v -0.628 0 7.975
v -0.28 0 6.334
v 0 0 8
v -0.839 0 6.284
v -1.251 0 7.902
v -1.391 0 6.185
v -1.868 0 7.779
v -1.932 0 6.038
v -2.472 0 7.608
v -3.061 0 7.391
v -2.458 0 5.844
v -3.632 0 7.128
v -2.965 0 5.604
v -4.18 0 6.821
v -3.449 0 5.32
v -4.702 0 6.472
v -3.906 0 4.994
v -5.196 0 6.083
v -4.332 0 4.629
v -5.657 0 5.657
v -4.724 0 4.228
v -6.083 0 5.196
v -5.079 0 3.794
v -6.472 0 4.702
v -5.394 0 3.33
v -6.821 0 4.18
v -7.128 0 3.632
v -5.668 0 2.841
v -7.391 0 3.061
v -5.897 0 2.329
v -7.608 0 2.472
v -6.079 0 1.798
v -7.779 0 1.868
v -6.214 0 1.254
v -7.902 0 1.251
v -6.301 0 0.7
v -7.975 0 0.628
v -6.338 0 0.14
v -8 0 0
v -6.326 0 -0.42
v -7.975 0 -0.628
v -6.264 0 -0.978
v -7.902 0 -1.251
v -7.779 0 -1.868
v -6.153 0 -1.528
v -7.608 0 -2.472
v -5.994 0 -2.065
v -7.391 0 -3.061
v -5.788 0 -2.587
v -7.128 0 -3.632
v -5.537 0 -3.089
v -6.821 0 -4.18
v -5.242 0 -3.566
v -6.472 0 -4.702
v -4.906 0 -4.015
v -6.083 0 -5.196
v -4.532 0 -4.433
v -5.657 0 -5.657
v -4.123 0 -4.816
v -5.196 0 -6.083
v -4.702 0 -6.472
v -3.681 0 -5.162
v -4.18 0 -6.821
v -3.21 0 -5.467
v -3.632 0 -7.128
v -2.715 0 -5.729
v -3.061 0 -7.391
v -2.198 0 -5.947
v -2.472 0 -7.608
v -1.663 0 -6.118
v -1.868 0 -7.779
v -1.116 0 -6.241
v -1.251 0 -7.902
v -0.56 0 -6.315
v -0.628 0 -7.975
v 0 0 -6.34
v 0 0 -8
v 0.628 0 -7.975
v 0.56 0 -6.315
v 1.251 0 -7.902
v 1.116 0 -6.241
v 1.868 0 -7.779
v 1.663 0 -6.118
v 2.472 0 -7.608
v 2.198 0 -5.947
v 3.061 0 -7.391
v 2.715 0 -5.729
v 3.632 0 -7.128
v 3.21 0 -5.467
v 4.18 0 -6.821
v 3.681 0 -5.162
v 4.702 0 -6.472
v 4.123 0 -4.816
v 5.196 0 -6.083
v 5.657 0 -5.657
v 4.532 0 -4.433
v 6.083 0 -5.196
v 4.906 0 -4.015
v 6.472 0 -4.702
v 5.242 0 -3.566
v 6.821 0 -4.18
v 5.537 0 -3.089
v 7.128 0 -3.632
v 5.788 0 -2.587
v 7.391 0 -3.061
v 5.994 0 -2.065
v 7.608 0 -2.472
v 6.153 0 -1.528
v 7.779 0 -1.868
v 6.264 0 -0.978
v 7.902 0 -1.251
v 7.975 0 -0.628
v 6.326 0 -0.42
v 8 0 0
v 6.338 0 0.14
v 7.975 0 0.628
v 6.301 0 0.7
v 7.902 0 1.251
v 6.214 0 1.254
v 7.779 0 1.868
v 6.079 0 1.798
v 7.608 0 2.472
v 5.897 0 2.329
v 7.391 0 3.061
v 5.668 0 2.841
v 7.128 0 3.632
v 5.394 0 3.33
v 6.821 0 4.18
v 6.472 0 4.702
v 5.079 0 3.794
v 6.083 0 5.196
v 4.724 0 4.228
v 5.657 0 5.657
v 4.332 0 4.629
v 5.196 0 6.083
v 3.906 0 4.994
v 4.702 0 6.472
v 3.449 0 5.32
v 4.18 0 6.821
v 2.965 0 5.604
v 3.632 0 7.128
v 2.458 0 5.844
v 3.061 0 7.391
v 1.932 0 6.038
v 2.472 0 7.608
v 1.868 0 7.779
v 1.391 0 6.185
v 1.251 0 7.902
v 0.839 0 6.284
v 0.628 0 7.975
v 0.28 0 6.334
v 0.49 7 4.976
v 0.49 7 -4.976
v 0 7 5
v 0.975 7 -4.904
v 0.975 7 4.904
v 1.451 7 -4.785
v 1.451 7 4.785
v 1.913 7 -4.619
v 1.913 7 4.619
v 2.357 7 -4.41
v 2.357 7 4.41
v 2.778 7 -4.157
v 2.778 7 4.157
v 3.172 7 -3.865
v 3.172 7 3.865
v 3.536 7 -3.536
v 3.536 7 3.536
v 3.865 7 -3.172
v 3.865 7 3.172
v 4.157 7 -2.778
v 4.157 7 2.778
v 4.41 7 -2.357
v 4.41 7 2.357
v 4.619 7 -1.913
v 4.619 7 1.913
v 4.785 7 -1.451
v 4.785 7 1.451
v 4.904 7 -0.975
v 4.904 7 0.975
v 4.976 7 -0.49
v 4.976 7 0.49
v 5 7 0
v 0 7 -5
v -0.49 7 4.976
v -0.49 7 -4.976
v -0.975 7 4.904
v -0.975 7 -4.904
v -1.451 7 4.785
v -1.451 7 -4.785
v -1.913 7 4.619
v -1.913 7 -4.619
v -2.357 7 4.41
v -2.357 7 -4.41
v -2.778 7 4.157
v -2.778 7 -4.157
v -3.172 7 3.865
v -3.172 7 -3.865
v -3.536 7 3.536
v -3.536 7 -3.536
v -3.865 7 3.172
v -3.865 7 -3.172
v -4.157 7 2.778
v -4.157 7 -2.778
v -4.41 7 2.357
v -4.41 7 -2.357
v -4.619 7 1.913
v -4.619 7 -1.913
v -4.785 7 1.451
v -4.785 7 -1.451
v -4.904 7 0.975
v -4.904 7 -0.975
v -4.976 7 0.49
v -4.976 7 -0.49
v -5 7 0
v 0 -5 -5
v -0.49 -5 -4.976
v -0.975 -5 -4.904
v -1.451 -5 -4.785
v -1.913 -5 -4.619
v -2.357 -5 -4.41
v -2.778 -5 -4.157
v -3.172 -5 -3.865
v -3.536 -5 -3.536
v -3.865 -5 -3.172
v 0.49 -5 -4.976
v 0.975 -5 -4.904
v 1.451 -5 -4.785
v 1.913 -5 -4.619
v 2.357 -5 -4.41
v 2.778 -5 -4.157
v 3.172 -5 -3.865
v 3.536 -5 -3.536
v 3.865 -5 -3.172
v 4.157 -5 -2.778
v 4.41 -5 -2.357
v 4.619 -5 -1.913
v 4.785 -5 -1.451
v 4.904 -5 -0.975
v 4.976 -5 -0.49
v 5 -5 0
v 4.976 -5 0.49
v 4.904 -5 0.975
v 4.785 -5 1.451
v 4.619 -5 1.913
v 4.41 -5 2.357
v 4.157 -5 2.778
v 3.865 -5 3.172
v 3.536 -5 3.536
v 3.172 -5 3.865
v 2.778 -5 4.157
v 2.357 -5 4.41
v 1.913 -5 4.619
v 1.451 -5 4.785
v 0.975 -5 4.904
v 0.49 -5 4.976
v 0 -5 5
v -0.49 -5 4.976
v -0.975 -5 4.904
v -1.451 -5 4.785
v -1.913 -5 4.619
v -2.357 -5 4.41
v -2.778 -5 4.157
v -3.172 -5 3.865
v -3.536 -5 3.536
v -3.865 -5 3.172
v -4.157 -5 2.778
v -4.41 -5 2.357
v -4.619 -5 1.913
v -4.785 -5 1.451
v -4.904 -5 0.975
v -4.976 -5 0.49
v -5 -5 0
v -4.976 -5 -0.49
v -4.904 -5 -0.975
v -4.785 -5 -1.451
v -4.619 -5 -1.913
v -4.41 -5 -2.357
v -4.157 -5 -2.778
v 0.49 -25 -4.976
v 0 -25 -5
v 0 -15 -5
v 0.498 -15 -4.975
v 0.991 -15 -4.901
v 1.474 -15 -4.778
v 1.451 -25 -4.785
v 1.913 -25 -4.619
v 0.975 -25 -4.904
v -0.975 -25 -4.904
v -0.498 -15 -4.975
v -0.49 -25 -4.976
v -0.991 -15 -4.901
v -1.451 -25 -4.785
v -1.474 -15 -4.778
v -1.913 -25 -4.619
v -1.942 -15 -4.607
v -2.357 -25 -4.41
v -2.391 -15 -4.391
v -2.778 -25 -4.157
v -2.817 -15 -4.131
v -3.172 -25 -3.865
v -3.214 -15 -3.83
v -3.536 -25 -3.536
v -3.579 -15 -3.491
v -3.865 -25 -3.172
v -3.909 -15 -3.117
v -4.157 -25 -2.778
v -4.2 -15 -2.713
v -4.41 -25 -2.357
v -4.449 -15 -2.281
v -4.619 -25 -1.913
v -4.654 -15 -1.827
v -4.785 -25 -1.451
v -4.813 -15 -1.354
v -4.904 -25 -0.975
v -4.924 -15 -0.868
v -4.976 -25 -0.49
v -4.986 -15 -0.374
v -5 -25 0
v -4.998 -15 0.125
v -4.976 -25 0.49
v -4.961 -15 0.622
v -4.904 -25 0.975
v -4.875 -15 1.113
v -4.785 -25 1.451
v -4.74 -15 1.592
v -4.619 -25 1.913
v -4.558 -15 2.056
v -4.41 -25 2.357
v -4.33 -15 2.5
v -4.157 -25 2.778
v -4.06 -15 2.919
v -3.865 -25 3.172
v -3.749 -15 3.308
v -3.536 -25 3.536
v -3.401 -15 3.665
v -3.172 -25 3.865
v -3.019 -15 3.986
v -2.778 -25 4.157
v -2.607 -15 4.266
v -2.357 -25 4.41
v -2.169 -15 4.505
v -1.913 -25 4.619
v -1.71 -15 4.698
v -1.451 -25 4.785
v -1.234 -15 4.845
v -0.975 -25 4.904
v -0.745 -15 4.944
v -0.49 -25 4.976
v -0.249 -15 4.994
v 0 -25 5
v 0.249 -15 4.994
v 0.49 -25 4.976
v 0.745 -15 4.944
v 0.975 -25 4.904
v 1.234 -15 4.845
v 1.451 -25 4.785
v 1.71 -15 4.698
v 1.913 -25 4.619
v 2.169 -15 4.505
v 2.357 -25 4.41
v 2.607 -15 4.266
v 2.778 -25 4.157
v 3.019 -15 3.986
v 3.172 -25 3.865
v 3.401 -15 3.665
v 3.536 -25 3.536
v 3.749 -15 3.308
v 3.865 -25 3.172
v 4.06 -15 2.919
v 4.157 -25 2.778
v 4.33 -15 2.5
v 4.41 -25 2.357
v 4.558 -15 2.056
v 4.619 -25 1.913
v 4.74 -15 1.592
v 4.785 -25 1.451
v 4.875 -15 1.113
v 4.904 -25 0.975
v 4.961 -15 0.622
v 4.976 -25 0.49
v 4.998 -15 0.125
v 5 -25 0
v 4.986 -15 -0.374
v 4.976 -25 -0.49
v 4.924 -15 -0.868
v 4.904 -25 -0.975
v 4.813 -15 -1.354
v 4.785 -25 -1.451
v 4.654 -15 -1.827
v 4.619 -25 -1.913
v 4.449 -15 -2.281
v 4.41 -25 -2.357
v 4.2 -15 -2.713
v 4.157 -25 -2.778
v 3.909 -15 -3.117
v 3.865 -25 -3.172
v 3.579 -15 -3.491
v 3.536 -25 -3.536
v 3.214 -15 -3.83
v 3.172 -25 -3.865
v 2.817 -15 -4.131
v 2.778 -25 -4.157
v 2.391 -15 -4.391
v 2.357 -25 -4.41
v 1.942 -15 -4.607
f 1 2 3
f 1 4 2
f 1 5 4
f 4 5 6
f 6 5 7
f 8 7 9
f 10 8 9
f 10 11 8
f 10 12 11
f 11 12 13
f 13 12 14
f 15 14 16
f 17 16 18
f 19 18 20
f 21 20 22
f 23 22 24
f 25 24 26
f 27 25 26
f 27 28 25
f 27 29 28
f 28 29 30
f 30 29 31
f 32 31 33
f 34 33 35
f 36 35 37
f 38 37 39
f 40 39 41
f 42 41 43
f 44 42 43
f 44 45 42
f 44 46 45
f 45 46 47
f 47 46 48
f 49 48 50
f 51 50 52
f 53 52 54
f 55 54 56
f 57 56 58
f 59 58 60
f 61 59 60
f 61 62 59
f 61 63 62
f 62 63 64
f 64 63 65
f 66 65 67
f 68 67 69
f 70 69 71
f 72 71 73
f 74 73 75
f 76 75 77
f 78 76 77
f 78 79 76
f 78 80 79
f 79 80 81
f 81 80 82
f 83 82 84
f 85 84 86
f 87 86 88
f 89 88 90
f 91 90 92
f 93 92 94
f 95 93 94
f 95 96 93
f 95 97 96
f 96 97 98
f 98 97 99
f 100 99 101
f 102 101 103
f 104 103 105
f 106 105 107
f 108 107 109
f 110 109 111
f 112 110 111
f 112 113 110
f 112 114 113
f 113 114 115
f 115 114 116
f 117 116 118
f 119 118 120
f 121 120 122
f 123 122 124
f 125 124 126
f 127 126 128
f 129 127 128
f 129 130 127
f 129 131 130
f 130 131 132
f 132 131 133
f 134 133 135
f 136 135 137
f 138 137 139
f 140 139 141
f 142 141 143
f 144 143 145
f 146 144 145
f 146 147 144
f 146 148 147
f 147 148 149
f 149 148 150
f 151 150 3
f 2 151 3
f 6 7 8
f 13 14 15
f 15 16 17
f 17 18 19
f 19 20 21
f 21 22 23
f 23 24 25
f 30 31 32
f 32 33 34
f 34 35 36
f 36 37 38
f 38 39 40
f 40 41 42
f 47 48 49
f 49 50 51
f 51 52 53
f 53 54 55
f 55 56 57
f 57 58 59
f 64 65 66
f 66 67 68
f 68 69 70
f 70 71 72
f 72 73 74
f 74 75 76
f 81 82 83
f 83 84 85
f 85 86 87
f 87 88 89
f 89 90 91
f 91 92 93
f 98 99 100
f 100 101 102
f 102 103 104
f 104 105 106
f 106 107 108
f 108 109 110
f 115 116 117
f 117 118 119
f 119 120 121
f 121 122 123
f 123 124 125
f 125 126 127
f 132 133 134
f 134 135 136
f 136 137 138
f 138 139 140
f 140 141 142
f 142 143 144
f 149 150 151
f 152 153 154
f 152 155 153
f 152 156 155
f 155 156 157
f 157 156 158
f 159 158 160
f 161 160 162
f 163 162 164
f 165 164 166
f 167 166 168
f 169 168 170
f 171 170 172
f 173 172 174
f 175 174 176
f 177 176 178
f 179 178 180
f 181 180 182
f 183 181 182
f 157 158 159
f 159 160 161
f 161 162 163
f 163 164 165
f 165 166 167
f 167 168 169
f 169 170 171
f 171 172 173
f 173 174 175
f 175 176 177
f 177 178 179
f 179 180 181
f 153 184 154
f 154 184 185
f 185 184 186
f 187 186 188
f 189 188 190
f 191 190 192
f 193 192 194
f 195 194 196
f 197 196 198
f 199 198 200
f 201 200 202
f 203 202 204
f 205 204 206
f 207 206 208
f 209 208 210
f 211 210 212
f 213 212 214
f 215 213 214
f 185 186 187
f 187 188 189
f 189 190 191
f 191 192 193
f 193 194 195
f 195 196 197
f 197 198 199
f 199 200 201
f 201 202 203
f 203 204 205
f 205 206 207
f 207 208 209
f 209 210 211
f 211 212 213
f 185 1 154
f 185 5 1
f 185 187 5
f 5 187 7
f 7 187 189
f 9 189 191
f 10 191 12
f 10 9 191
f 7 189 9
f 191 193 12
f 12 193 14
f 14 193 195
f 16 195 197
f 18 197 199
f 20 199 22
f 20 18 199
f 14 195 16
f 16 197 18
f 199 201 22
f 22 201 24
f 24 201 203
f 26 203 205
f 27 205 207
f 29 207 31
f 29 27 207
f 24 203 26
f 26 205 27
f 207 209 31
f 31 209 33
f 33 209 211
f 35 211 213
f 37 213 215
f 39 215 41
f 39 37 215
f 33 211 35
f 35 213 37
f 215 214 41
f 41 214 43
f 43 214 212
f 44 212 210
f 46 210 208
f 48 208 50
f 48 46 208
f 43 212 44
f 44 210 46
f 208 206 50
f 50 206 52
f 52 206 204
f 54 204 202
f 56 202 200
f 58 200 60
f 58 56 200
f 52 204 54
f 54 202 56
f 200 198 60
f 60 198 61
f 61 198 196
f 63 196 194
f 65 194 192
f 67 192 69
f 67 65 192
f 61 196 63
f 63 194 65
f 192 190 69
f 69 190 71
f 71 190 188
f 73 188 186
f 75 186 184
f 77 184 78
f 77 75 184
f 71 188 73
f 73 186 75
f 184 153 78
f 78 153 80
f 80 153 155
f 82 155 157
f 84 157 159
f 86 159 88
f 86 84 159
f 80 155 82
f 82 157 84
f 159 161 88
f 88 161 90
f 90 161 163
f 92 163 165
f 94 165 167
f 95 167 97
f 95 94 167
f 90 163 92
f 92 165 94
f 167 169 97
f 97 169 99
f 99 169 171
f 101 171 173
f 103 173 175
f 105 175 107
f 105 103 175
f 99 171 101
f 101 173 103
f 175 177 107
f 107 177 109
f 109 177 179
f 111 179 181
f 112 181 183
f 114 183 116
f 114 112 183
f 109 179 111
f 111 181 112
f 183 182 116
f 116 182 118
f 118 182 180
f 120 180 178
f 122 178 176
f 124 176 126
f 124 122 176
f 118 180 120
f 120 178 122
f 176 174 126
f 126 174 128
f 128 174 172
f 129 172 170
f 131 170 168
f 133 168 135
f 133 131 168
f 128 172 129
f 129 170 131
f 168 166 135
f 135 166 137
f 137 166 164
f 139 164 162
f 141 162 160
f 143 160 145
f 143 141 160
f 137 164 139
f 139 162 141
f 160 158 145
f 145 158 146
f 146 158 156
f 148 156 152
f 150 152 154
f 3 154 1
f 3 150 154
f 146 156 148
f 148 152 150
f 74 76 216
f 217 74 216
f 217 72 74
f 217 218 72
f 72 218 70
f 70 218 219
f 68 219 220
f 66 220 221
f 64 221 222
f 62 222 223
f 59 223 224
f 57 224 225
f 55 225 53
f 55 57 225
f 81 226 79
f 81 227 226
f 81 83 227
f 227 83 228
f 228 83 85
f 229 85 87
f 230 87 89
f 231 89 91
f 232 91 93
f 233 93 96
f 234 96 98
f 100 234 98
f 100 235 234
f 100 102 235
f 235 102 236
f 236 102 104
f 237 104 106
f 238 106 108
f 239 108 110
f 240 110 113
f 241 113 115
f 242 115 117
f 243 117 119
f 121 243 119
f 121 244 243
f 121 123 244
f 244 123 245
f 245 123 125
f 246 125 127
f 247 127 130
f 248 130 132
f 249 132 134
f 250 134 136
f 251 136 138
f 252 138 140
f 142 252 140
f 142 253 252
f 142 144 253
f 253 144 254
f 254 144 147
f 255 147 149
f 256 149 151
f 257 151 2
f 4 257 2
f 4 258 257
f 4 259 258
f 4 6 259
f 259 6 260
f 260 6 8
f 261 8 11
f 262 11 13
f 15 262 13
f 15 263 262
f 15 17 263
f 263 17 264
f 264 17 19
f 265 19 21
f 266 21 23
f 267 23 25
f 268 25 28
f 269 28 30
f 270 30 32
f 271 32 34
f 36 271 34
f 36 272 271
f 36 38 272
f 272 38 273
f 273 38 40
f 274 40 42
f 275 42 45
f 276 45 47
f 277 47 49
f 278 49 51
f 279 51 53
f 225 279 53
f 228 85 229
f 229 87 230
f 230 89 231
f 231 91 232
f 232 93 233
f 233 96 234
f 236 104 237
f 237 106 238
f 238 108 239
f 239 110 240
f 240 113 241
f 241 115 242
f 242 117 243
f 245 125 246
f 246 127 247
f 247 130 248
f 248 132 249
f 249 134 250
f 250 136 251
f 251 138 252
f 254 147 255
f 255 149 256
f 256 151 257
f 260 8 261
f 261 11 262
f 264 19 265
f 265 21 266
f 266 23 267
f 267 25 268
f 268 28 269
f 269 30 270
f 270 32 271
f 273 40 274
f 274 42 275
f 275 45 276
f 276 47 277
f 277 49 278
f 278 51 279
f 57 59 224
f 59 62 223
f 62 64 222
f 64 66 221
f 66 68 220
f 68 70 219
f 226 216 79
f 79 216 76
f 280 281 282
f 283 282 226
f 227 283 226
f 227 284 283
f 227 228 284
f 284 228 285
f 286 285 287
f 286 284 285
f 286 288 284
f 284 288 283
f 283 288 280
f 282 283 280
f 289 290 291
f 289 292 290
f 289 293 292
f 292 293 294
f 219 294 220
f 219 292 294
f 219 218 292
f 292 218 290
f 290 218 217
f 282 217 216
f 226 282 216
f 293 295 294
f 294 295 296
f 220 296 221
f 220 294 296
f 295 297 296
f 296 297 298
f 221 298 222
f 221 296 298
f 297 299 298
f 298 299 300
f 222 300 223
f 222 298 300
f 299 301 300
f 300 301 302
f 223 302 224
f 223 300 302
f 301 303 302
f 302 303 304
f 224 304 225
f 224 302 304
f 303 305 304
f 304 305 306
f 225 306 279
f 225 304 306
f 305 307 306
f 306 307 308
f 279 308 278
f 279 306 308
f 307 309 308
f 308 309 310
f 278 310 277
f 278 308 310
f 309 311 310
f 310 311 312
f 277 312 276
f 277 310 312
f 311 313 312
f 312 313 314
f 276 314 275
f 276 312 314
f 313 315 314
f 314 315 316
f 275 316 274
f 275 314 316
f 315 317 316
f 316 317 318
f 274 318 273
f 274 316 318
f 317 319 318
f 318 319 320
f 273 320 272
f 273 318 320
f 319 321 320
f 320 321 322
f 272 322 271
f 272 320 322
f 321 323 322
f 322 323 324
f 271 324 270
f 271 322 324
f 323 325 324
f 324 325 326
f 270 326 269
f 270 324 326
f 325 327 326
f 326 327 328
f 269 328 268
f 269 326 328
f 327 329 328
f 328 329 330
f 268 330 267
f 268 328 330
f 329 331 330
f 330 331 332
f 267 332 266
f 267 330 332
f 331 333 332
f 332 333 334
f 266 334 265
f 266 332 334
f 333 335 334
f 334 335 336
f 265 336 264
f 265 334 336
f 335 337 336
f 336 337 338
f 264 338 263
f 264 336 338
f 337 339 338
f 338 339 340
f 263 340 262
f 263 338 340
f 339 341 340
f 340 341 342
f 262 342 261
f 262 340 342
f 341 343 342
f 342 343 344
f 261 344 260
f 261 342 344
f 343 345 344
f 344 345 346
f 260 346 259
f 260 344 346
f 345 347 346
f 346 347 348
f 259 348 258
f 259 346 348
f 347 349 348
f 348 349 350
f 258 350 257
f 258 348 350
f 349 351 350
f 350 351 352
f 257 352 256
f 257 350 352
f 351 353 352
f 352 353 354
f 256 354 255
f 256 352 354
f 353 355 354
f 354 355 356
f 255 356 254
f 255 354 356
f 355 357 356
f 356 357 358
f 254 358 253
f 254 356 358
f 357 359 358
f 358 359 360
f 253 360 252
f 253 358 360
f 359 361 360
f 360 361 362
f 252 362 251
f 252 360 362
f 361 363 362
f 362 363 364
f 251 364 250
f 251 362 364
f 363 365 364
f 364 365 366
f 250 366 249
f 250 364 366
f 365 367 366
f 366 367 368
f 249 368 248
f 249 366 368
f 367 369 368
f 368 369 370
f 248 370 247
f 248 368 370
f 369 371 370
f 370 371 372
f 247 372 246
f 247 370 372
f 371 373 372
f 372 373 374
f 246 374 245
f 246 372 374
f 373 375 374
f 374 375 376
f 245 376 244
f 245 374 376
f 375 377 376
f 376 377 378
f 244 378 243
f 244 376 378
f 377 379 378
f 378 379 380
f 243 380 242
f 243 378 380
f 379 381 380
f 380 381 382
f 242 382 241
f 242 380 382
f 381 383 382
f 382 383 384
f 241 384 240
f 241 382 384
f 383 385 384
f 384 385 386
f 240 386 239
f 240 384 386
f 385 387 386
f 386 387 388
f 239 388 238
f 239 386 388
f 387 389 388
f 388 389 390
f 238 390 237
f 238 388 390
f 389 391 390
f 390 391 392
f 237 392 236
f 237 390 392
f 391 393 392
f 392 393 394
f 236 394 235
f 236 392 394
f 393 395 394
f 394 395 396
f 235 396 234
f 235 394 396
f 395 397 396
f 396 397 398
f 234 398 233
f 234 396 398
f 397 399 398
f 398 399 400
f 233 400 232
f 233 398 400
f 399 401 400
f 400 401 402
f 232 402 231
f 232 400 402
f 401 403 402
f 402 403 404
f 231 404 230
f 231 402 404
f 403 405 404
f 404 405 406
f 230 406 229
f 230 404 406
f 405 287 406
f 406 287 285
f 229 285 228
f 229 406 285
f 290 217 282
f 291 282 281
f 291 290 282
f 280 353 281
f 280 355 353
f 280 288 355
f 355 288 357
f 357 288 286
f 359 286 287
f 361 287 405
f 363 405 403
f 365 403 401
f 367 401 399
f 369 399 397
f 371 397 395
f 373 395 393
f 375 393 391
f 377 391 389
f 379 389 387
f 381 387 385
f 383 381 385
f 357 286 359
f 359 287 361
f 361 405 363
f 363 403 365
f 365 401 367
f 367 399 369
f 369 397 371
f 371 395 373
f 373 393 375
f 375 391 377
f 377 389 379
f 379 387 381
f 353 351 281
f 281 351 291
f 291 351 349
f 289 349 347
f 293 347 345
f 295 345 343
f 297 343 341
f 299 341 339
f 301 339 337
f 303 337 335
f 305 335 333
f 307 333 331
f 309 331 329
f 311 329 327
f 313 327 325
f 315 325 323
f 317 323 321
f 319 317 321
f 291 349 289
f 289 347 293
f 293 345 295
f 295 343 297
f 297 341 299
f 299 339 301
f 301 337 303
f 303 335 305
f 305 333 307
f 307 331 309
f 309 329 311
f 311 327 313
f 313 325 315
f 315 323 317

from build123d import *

# Parameters (mm, degrees)
SKETCH3_R           = 5
SKETCH1_R           = 8
SKETCH4_R           = 5
BOSS_EXTRUDE1_DEPTH = 5
BOSS_EXTRUDE1_TAPER = -15
SKETCH5_R           = 5
BOSS_EXTRUDE2_DEPTH = 20


with BuildPart() as part:
    # Sketch3 → Loft1 section 0
    with BuildSketch(Plane(origin=(0, 7, 0), x_dir=(1, 0, 0), z_dir=(0, 1, 0))):
        Circle(SKETCH3_R)
    # Sketch1 → Loft1 section 1
    with BuildSketch(Plane(origin=(0, 0, 0), x_dir=(1, 0, 0), z_dir=(0, 1, 0))):
        Circle(SKETCH1_R)
    loft()

    # Sketch4 → Boss-Extrude1 (add)
    with BuildSketch(Plane(origin=(0, -5, 0), x_dir=(-1, 0, 0), z_dir=(0, -1, 0))):
        Circle(SKETCH4_R)
    extrude(amount=-BOSS_EXTRUDE1_DEPTH, taper=BOSS_EXTRUDE1_TAPER)

    # Sketch5 → Boss-Extrude2 (add)
    with BuildSketch(Plane(origin=(0, -5, 0), x_dir=(-1, 0, 0), z_dir=(0, -1, 0))):
        Circle(SKETCH5_R)
    extrude(amount=BOSS_EXTRUDE2_DEPTH)


solid = part.part
